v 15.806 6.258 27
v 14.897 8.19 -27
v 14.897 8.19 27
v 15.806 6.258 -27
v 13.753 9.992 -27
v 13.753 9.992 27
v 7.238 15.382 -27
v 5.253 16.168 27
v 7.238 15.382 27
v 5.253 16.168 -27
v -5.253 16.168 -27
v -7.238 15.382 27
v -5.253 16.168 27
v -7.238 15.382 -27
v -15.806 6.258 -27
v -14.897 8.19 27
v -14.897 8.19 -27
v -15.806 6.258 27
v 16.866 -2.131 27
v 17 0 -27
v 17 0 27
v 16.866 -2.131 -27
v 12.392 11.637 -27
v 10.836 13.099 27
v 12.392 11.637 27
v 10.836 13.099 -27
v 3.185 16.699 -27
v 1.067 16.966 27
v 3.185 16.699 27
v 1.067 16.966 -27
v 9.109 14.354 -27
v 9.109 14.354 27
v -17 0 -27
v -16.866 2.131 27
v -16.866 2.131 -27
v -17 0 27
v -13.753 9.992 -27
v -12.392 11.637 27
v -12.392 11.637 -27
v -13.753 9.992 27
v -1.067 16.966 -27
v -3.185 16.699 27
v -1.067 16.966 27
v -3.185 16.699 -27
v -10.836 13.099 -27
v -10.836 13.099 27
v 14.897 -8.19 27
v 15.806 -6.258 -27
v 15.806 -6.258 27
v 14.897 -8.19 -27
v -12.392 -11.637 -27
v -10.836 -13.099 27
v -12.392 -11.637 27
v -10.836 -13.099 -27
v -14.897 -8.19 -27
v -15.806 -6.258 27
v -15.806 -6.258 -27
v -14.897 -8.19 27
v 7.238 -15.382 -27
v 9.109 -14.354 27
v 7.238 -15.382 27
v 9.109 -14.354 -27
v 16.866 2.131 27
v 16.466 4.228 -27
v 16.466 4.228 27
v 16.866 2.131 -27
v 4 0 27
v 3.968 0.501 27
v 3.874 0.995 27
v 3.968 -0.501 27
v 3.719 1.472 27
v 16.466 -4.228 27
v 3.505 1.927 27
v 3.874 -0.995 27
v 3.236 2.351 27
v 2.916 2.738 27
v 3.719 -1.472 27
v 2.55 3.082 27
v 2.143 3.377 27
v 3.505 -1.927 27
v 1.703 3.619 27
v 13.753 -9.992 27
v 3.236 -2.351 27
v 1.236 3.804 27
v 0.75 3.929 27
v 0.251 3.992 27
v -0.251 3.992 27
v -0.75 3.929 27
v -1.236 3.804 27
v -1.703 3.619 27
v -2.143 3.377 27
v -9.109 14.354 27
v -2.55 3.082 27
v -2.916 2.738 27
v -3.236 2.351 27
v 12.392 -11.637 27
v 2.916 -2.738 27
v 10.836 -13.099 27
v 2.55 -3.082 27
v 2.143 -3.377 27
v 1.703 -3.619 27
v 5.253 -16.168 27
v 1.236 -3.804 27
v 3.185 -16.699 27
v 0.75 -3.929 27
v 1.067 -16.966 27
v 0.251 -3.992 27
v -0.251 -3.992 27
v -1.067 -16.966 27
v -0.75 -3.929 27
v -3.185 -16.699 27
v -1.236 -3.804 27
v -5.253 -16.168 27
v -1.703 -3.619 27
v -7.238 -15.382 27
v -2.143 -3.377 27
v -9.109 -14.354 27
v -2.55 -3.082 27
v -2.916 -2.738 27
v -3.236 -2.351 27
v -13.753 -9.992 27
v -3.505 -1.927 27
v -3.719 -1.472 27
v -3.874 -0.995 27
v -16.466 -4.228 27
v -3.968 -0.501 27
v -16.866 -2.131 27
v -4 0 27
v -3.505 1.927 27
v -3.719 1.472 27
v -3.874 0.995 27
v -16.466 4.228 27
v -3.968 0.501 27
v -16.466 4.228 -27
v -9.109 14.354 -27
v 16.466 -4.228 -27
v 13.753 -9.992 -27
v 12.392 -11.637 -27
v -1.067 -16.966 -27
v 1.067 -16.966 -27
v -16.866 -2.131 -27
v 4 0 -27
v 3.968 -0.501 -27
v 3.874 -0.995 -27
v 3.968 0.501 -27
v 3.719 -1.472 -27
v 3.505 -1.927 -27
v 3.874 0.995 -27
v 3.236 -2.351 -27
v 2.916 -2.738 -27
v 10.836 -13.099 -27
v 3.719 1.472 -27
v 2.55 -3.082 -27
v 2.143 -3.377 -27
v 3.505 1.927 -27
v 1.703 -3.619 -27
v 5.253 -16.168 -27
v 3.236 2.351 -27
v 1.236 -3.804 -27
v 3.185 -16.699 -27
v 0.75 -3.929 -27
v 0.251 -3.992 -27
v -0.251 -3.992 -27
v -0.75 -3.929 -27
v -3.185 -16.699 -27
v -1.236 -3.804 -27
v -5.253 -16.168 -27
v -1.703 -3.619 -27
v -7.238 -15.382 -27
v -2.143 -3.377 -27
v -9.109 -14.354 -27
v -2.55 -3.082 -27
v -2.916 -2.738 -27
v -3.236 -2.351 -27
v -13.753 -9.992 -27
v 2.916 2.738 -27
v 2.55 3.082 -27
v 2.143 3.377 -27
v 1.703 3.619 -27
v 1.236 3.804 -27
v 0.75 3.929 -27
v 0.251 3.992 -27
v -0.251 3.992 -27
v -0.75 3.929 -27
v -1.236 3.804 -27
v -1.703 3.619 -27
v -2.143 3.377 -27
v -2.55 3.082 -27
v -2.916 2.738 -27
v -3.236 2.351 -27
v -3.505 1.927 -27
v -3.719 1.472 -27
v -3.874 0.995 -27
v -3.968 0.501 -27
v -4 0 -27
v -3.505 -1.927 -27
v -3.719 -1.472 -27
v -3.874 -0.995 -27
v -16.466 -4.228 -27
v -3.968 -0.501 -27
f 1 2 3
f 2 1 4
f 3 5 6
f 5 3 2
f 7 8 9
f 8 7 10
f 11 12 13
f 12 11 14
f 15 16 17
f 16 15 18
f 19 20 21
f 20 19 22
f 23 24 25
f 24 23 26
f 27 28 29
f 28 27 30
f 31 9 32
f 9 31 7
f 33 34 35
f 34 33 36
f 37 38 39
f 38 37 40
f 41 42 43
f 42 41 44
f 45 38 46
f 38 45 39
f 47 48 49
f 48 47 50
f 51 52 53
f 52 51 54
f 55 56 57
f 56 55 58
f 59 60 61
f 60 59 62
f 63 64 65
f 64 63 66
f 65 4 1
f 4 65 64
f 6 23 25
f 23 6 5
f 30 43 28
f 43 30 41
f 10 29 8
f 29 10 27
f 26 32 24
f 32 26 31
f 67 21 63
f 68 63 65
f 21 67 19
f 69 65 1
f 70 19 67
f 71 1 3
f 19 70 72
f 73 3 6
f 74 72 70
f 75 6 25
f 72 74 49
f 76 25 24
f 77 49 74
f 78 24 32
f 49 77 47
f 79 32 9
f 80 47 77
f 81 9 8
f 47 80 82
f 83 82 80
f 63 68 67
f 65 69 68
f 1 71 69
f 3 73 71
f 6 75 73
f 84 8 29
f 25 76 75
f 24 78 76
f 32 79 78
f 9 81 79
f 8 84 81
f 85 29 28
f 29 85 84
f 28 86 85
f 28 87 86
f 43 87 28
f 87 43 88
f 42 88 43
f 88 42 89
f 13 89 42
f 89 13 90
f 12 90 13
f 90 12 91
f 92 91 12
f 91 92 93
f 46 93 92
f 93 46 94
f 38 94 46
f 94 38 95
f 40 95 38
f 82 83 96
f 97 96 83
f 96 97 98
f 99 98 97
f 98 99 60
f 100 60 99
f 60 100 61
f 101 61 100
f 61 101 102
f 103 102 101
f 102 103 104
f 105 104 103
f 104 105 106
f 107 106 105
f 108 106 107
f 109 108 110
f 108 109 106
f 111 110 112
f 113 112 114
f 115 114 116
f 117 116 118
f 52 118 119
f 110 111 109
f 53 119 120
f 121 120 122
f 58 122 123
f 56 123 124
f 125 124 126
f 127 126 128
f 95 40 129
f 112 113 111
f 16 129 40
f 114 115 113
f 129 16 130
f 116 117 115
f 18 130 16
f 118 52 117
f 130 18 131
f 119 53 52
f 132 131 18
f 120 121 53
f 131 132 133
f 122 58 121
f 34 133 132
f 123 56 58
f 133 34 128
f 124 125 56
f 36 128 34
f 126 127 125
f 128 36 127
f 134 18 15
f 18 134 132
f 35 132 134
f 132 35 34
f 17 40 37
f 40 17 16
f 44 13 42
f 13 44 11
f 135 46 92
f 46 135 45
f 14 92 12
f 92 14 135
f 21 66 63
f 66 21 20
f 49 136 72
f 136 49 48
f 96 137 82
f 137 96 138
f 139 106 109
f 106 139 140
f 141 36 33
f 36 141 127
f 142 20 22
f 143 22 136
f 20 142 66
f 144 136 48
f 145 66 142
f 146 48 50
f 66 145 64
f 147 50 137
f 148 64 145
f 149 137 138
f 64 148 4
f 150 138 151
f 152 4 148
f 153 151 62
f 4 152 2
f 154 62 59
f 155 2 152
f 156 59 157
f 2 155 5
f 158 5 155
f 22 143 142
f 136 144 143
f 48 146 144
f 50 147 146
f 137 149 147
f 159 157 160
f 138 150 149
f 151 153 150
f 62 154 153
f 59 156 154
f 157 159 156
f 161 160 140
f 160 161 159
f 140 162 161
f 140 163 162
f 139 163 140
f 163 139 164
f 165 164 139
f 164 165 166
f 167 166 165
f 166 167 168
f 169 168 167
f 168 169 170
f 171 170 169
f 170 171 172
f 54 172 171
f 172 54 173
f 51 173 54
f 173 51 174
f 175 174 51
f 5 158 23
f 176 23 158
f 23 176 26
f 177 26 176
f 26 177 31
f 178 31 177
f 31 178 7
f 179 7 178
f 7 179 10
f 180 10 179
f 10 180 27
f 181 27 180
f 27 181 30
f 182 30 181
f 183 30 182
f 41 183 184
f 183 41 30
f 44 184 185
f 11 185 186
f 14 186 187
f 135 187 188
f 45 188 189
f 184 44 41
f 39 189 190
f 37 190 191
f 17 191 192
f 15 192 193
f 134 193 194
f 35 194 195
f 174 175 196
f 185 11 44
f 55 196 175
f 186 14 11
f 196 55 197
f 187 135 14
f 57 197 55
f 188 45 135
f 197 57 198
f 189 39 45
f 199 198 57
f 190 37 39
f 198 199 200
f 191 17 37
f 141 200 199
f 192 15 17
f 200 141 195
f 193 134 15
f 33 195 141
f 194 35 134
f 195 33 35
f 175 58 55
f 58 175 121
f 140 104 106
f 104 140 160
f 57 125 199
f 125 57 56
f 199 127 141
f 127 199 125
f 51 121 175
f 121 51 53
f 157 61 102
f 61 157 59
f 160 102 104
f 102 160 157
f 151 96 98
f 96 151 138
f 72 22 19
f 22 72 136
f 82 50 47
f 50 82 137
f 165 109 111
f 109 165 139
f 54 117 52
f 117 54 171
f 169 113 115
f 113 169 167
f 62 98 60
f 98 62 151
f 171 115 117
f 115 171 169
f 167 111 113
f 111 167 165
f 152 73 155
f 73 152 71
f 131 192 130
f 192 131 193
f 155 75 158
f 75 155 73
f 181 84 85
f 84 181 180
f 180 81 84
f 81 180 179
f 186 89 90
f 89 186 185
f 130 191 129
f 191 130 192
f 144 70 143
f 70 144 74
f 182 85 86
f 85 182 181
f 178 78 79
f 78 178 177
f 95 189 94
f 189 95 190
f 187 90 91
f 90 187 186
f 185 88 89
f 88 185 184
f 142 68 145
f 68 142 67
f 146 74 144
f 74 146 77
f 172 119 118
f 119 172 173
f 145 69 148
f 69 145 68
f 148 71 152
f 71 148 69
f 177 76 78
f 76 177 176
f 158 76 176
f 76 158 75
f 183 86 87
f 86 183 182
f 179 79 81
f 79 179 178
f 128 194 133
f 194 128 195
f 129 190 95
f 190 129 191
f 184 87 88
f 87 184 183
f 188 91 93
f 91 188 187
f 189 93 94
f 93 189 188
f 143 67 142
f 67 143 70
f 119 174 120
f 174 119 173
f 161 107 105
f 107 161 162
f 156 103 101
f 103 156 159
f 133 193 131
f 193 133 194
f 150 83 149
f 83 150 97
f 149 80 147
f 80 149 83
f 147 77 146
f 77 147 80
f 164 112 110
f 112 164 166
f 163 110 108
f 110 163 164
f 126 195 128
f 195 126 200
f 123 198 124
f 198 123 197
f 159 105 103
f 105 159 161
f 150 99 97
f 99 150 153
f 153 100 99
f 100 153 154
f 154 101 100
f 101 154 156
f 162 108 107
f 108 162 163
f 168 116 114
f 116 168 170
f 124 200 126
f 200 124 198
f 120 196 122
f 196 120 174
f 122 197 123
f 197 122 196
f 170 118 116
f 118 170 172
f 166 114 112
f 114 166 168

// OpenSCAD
$fn = 50;


difference() {
	union() {
		translate(v = [0, 0, -27.0000000000]) {
			cylinder(h = 54, r = 17.0000000000);
		}
	}
	union() {
		translate(v = [0, 0, -100.0000000000]) {
			cylinder(h = 200, r = 4);
		}
	}
}
